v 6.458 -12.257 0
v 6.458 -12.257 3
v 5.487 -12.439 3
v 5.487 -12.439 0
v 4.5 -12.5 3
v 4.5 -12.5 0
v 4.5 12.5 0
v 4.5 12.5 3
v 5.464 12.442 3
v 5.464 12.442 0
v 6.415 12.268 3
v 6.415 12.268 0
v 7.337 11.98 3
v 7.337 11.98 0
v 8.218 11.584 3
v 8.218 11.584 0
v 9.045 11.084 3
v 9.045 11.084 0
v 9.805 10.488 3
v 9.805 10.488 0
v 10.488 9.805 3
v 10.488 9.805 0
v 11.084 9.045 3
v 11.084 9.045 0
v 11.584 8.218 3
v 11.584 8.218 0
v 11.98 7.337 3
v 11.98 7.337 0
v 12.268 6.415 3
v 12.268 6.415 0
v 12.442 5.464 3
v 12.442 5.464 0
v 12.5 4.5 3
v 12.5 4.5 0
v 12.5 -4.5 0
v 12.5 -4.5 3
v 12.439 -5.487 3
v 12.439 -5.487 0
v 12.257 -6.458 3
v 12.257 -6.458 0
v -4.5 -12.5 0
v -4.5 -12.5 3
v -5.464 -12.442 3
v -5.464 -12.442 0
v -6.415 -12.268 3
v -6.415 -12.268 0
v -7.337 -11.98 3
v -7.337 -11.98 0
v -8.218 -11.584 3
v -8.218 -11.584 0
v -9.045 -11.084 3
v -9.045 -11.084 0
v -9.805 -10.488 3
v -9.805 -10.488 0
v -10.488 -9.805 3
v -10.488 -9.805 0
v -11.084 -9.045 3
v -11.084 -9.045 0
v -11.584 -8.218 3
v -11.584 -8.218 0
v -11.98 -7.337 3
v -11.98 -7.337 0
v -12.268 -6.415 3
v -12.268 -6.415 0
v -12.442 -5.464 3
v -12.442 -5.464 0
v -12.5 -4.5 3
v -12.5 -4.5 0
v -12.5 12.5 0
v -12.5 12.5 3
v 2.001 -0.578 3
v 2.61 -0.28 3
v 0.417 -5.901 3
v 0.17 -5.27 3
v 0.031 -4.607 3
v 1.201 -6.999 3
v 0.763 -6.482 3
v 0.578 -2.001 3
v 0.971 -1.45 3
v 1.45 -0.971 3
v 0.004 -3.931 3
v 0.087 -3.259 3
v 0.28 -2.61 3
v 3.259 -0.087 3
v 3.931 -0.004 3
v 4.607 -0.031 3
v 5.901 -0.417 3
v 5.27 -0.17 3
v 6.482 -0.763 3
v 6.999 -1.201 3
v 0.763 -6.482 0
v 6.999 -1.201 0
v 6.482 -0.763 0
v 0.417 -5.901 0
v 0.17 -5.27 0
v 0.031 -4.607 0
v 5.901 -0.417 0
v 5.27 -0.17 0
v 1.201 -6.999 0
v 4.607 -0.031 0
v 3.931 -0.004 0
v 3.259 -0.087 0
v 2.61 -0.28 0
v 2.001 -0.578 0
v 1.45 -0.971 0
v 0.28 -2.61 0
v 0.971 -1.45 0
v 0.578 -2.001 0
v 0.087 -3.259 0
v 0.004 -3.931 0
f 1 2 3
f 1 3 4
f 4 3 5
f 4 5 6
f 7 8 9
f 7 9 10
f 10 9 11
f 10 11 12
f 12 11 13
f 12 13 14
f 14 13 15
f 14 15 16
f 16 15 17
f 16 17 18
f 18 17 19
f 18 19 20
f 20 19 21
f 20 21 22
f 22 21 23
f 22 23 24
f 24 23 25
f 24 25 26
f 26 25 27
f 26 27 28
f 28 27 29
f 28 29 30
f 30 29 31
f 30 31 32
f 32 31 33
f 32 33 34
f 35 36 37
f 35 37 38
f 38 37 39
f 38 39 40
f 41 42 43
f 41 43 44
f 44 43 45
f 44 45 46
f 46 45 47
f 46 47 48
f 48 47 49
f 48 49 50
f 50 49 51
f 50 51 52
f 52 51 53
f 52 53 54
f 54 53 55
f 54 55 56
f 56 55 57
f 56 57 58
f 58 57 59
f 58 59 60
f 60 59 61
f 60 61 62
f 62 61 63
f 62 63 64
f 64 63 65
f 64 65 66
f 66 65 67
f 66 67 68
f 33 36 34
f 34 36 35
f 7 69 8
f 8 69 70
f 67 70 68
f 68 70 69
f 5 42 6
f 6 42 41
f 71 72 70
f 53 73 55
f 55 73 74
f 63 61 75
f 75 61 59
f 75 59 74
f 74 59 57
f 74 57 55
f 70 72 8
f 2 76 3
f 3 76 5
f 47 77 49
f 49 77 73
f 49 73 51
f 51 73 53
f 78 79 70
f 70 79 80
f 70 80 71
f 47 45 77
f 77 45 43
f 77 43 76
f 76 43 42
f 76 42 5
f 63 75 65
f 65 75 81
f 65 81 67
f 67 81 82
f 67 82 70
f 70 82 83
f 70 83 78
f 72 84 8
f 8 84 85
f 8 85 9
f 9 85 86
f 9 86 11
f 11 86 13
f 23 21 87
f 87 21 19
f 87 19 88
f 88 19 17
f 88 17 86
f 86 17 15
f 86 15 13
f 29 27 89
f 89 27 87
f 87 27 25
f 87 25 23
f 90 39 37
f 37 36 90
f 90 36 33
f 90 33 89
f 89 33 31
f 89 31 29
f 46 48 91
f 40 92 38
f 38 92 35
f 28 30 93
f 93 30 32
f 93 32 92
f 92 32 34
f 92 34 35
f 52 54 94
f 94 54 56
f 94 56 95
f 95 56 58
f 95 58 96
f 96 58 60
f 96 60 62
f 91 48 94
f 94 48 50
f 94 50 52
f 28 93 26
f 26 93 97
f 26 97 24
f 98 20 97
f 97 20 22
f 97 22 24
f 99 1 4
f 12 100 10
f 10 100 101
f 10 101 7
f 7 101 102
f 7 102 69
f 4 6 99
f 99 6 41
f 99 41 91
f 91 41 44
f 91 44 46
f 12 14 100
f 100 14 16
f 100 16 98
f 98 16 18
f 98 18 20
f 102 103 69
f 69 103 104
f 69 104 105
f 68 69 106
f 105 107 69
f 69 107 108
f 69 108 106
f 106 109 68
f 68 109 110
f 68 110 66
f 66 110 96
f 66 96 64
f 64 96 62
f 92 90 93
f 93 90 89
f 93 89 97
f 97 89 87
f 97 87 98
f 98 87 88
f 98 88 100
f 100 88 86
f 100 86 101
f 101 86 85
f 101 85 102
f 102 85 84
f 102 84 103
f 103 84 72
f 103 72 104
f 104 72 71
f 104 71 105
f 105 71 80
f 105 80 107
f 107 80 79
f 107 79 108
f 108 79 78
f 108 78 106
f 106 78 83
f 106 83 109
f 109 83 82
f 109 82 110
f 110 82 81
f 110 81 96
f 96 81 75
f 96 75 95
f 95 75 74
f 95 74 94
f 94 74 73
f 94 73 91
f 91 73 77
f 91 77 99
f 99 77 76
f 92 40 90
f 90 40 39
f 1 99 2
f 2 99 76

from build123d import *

# Parameters (mm, degrees)
SKETCH_1_W          = 25
SKETCH_1_H          = 25
EXTRUDE_1_DEPTH     = 3
FILLET_1_R          = 8
FILLET_2_R          = 8
FILLET_3_R          = 8
SKETCH_2_R          = 4.1
CUT_EXTRUDE_1_DEPTH = 3
CUT_EXTRUDE_2_DEPTH = 3


with BuildPart() as part:
    # 草图1 → 凸台-拉伸1 (new body)
    with BuildSketch(Plane.XY):
        Rectangle(SKETCH_1_W, SKETCH_1_H)
    extrude(amount=EXTRUDE_1_DEPTH)

    # 圆角1
    fillet_1_edges = [part.edges().sort_by_distance(p)[0] for p in [
        (-12.5, -12.5, 1.5),
    ]]
    fillet(fillet_1_edges, radius=FILLET_1_R)

    # 圆角2
    fillet_2_edges = [part.edges().sort_by_distance(p)[0] for p in [
        (12.5, -12.5, 1.5),
    ]]
    fillet(fillet_2_edges, radius=FILLET_2_R)

    # 圆角3
    fillet_3_edges = [part.edges().sort_by_distance(p)[0] for p in [
        (12.5, 12.5, 1.5),
    ]]
    fillet(fillet_3_edges, radius=FILLET_3_R)

    # 草图2 → 切除-拉伸1 (cut)
    with BuildSketch(Plane.XY.offset(3)):
        with Locations((4.1, -4.1)):
            Circle(SKETCH_2_R)
    extrude(amount=-CUT_EXTRUDE_1_DEPTH, mode=Mode.SUBTRACT)

    # 草图3 → 切除-拉伸2 (cut)
    with BuildSketch(Plane.XY.offset(3)):
        with BuildLine():
            Line((12.256606279, -6.458330674), (6.999137803, -1.200862197))
            ThreePointArc((6.999137803, -1.200862197), (6.999137803, -6.999137803), (1.200862197, -6.999137803))
            Line((1.200862197, -6.999137803), (6.458330674, -12.256606279))
            ThreePointArc((6.458330674, -12.256606279), (10.156854249, -10.156854249), (12.256606279, -6.458330674))
        make_face()
    extrude(amount=-CUT_EXTRUDE_2_DEPTH, mode=Mode.SUBTRACT)


solid = part.part
